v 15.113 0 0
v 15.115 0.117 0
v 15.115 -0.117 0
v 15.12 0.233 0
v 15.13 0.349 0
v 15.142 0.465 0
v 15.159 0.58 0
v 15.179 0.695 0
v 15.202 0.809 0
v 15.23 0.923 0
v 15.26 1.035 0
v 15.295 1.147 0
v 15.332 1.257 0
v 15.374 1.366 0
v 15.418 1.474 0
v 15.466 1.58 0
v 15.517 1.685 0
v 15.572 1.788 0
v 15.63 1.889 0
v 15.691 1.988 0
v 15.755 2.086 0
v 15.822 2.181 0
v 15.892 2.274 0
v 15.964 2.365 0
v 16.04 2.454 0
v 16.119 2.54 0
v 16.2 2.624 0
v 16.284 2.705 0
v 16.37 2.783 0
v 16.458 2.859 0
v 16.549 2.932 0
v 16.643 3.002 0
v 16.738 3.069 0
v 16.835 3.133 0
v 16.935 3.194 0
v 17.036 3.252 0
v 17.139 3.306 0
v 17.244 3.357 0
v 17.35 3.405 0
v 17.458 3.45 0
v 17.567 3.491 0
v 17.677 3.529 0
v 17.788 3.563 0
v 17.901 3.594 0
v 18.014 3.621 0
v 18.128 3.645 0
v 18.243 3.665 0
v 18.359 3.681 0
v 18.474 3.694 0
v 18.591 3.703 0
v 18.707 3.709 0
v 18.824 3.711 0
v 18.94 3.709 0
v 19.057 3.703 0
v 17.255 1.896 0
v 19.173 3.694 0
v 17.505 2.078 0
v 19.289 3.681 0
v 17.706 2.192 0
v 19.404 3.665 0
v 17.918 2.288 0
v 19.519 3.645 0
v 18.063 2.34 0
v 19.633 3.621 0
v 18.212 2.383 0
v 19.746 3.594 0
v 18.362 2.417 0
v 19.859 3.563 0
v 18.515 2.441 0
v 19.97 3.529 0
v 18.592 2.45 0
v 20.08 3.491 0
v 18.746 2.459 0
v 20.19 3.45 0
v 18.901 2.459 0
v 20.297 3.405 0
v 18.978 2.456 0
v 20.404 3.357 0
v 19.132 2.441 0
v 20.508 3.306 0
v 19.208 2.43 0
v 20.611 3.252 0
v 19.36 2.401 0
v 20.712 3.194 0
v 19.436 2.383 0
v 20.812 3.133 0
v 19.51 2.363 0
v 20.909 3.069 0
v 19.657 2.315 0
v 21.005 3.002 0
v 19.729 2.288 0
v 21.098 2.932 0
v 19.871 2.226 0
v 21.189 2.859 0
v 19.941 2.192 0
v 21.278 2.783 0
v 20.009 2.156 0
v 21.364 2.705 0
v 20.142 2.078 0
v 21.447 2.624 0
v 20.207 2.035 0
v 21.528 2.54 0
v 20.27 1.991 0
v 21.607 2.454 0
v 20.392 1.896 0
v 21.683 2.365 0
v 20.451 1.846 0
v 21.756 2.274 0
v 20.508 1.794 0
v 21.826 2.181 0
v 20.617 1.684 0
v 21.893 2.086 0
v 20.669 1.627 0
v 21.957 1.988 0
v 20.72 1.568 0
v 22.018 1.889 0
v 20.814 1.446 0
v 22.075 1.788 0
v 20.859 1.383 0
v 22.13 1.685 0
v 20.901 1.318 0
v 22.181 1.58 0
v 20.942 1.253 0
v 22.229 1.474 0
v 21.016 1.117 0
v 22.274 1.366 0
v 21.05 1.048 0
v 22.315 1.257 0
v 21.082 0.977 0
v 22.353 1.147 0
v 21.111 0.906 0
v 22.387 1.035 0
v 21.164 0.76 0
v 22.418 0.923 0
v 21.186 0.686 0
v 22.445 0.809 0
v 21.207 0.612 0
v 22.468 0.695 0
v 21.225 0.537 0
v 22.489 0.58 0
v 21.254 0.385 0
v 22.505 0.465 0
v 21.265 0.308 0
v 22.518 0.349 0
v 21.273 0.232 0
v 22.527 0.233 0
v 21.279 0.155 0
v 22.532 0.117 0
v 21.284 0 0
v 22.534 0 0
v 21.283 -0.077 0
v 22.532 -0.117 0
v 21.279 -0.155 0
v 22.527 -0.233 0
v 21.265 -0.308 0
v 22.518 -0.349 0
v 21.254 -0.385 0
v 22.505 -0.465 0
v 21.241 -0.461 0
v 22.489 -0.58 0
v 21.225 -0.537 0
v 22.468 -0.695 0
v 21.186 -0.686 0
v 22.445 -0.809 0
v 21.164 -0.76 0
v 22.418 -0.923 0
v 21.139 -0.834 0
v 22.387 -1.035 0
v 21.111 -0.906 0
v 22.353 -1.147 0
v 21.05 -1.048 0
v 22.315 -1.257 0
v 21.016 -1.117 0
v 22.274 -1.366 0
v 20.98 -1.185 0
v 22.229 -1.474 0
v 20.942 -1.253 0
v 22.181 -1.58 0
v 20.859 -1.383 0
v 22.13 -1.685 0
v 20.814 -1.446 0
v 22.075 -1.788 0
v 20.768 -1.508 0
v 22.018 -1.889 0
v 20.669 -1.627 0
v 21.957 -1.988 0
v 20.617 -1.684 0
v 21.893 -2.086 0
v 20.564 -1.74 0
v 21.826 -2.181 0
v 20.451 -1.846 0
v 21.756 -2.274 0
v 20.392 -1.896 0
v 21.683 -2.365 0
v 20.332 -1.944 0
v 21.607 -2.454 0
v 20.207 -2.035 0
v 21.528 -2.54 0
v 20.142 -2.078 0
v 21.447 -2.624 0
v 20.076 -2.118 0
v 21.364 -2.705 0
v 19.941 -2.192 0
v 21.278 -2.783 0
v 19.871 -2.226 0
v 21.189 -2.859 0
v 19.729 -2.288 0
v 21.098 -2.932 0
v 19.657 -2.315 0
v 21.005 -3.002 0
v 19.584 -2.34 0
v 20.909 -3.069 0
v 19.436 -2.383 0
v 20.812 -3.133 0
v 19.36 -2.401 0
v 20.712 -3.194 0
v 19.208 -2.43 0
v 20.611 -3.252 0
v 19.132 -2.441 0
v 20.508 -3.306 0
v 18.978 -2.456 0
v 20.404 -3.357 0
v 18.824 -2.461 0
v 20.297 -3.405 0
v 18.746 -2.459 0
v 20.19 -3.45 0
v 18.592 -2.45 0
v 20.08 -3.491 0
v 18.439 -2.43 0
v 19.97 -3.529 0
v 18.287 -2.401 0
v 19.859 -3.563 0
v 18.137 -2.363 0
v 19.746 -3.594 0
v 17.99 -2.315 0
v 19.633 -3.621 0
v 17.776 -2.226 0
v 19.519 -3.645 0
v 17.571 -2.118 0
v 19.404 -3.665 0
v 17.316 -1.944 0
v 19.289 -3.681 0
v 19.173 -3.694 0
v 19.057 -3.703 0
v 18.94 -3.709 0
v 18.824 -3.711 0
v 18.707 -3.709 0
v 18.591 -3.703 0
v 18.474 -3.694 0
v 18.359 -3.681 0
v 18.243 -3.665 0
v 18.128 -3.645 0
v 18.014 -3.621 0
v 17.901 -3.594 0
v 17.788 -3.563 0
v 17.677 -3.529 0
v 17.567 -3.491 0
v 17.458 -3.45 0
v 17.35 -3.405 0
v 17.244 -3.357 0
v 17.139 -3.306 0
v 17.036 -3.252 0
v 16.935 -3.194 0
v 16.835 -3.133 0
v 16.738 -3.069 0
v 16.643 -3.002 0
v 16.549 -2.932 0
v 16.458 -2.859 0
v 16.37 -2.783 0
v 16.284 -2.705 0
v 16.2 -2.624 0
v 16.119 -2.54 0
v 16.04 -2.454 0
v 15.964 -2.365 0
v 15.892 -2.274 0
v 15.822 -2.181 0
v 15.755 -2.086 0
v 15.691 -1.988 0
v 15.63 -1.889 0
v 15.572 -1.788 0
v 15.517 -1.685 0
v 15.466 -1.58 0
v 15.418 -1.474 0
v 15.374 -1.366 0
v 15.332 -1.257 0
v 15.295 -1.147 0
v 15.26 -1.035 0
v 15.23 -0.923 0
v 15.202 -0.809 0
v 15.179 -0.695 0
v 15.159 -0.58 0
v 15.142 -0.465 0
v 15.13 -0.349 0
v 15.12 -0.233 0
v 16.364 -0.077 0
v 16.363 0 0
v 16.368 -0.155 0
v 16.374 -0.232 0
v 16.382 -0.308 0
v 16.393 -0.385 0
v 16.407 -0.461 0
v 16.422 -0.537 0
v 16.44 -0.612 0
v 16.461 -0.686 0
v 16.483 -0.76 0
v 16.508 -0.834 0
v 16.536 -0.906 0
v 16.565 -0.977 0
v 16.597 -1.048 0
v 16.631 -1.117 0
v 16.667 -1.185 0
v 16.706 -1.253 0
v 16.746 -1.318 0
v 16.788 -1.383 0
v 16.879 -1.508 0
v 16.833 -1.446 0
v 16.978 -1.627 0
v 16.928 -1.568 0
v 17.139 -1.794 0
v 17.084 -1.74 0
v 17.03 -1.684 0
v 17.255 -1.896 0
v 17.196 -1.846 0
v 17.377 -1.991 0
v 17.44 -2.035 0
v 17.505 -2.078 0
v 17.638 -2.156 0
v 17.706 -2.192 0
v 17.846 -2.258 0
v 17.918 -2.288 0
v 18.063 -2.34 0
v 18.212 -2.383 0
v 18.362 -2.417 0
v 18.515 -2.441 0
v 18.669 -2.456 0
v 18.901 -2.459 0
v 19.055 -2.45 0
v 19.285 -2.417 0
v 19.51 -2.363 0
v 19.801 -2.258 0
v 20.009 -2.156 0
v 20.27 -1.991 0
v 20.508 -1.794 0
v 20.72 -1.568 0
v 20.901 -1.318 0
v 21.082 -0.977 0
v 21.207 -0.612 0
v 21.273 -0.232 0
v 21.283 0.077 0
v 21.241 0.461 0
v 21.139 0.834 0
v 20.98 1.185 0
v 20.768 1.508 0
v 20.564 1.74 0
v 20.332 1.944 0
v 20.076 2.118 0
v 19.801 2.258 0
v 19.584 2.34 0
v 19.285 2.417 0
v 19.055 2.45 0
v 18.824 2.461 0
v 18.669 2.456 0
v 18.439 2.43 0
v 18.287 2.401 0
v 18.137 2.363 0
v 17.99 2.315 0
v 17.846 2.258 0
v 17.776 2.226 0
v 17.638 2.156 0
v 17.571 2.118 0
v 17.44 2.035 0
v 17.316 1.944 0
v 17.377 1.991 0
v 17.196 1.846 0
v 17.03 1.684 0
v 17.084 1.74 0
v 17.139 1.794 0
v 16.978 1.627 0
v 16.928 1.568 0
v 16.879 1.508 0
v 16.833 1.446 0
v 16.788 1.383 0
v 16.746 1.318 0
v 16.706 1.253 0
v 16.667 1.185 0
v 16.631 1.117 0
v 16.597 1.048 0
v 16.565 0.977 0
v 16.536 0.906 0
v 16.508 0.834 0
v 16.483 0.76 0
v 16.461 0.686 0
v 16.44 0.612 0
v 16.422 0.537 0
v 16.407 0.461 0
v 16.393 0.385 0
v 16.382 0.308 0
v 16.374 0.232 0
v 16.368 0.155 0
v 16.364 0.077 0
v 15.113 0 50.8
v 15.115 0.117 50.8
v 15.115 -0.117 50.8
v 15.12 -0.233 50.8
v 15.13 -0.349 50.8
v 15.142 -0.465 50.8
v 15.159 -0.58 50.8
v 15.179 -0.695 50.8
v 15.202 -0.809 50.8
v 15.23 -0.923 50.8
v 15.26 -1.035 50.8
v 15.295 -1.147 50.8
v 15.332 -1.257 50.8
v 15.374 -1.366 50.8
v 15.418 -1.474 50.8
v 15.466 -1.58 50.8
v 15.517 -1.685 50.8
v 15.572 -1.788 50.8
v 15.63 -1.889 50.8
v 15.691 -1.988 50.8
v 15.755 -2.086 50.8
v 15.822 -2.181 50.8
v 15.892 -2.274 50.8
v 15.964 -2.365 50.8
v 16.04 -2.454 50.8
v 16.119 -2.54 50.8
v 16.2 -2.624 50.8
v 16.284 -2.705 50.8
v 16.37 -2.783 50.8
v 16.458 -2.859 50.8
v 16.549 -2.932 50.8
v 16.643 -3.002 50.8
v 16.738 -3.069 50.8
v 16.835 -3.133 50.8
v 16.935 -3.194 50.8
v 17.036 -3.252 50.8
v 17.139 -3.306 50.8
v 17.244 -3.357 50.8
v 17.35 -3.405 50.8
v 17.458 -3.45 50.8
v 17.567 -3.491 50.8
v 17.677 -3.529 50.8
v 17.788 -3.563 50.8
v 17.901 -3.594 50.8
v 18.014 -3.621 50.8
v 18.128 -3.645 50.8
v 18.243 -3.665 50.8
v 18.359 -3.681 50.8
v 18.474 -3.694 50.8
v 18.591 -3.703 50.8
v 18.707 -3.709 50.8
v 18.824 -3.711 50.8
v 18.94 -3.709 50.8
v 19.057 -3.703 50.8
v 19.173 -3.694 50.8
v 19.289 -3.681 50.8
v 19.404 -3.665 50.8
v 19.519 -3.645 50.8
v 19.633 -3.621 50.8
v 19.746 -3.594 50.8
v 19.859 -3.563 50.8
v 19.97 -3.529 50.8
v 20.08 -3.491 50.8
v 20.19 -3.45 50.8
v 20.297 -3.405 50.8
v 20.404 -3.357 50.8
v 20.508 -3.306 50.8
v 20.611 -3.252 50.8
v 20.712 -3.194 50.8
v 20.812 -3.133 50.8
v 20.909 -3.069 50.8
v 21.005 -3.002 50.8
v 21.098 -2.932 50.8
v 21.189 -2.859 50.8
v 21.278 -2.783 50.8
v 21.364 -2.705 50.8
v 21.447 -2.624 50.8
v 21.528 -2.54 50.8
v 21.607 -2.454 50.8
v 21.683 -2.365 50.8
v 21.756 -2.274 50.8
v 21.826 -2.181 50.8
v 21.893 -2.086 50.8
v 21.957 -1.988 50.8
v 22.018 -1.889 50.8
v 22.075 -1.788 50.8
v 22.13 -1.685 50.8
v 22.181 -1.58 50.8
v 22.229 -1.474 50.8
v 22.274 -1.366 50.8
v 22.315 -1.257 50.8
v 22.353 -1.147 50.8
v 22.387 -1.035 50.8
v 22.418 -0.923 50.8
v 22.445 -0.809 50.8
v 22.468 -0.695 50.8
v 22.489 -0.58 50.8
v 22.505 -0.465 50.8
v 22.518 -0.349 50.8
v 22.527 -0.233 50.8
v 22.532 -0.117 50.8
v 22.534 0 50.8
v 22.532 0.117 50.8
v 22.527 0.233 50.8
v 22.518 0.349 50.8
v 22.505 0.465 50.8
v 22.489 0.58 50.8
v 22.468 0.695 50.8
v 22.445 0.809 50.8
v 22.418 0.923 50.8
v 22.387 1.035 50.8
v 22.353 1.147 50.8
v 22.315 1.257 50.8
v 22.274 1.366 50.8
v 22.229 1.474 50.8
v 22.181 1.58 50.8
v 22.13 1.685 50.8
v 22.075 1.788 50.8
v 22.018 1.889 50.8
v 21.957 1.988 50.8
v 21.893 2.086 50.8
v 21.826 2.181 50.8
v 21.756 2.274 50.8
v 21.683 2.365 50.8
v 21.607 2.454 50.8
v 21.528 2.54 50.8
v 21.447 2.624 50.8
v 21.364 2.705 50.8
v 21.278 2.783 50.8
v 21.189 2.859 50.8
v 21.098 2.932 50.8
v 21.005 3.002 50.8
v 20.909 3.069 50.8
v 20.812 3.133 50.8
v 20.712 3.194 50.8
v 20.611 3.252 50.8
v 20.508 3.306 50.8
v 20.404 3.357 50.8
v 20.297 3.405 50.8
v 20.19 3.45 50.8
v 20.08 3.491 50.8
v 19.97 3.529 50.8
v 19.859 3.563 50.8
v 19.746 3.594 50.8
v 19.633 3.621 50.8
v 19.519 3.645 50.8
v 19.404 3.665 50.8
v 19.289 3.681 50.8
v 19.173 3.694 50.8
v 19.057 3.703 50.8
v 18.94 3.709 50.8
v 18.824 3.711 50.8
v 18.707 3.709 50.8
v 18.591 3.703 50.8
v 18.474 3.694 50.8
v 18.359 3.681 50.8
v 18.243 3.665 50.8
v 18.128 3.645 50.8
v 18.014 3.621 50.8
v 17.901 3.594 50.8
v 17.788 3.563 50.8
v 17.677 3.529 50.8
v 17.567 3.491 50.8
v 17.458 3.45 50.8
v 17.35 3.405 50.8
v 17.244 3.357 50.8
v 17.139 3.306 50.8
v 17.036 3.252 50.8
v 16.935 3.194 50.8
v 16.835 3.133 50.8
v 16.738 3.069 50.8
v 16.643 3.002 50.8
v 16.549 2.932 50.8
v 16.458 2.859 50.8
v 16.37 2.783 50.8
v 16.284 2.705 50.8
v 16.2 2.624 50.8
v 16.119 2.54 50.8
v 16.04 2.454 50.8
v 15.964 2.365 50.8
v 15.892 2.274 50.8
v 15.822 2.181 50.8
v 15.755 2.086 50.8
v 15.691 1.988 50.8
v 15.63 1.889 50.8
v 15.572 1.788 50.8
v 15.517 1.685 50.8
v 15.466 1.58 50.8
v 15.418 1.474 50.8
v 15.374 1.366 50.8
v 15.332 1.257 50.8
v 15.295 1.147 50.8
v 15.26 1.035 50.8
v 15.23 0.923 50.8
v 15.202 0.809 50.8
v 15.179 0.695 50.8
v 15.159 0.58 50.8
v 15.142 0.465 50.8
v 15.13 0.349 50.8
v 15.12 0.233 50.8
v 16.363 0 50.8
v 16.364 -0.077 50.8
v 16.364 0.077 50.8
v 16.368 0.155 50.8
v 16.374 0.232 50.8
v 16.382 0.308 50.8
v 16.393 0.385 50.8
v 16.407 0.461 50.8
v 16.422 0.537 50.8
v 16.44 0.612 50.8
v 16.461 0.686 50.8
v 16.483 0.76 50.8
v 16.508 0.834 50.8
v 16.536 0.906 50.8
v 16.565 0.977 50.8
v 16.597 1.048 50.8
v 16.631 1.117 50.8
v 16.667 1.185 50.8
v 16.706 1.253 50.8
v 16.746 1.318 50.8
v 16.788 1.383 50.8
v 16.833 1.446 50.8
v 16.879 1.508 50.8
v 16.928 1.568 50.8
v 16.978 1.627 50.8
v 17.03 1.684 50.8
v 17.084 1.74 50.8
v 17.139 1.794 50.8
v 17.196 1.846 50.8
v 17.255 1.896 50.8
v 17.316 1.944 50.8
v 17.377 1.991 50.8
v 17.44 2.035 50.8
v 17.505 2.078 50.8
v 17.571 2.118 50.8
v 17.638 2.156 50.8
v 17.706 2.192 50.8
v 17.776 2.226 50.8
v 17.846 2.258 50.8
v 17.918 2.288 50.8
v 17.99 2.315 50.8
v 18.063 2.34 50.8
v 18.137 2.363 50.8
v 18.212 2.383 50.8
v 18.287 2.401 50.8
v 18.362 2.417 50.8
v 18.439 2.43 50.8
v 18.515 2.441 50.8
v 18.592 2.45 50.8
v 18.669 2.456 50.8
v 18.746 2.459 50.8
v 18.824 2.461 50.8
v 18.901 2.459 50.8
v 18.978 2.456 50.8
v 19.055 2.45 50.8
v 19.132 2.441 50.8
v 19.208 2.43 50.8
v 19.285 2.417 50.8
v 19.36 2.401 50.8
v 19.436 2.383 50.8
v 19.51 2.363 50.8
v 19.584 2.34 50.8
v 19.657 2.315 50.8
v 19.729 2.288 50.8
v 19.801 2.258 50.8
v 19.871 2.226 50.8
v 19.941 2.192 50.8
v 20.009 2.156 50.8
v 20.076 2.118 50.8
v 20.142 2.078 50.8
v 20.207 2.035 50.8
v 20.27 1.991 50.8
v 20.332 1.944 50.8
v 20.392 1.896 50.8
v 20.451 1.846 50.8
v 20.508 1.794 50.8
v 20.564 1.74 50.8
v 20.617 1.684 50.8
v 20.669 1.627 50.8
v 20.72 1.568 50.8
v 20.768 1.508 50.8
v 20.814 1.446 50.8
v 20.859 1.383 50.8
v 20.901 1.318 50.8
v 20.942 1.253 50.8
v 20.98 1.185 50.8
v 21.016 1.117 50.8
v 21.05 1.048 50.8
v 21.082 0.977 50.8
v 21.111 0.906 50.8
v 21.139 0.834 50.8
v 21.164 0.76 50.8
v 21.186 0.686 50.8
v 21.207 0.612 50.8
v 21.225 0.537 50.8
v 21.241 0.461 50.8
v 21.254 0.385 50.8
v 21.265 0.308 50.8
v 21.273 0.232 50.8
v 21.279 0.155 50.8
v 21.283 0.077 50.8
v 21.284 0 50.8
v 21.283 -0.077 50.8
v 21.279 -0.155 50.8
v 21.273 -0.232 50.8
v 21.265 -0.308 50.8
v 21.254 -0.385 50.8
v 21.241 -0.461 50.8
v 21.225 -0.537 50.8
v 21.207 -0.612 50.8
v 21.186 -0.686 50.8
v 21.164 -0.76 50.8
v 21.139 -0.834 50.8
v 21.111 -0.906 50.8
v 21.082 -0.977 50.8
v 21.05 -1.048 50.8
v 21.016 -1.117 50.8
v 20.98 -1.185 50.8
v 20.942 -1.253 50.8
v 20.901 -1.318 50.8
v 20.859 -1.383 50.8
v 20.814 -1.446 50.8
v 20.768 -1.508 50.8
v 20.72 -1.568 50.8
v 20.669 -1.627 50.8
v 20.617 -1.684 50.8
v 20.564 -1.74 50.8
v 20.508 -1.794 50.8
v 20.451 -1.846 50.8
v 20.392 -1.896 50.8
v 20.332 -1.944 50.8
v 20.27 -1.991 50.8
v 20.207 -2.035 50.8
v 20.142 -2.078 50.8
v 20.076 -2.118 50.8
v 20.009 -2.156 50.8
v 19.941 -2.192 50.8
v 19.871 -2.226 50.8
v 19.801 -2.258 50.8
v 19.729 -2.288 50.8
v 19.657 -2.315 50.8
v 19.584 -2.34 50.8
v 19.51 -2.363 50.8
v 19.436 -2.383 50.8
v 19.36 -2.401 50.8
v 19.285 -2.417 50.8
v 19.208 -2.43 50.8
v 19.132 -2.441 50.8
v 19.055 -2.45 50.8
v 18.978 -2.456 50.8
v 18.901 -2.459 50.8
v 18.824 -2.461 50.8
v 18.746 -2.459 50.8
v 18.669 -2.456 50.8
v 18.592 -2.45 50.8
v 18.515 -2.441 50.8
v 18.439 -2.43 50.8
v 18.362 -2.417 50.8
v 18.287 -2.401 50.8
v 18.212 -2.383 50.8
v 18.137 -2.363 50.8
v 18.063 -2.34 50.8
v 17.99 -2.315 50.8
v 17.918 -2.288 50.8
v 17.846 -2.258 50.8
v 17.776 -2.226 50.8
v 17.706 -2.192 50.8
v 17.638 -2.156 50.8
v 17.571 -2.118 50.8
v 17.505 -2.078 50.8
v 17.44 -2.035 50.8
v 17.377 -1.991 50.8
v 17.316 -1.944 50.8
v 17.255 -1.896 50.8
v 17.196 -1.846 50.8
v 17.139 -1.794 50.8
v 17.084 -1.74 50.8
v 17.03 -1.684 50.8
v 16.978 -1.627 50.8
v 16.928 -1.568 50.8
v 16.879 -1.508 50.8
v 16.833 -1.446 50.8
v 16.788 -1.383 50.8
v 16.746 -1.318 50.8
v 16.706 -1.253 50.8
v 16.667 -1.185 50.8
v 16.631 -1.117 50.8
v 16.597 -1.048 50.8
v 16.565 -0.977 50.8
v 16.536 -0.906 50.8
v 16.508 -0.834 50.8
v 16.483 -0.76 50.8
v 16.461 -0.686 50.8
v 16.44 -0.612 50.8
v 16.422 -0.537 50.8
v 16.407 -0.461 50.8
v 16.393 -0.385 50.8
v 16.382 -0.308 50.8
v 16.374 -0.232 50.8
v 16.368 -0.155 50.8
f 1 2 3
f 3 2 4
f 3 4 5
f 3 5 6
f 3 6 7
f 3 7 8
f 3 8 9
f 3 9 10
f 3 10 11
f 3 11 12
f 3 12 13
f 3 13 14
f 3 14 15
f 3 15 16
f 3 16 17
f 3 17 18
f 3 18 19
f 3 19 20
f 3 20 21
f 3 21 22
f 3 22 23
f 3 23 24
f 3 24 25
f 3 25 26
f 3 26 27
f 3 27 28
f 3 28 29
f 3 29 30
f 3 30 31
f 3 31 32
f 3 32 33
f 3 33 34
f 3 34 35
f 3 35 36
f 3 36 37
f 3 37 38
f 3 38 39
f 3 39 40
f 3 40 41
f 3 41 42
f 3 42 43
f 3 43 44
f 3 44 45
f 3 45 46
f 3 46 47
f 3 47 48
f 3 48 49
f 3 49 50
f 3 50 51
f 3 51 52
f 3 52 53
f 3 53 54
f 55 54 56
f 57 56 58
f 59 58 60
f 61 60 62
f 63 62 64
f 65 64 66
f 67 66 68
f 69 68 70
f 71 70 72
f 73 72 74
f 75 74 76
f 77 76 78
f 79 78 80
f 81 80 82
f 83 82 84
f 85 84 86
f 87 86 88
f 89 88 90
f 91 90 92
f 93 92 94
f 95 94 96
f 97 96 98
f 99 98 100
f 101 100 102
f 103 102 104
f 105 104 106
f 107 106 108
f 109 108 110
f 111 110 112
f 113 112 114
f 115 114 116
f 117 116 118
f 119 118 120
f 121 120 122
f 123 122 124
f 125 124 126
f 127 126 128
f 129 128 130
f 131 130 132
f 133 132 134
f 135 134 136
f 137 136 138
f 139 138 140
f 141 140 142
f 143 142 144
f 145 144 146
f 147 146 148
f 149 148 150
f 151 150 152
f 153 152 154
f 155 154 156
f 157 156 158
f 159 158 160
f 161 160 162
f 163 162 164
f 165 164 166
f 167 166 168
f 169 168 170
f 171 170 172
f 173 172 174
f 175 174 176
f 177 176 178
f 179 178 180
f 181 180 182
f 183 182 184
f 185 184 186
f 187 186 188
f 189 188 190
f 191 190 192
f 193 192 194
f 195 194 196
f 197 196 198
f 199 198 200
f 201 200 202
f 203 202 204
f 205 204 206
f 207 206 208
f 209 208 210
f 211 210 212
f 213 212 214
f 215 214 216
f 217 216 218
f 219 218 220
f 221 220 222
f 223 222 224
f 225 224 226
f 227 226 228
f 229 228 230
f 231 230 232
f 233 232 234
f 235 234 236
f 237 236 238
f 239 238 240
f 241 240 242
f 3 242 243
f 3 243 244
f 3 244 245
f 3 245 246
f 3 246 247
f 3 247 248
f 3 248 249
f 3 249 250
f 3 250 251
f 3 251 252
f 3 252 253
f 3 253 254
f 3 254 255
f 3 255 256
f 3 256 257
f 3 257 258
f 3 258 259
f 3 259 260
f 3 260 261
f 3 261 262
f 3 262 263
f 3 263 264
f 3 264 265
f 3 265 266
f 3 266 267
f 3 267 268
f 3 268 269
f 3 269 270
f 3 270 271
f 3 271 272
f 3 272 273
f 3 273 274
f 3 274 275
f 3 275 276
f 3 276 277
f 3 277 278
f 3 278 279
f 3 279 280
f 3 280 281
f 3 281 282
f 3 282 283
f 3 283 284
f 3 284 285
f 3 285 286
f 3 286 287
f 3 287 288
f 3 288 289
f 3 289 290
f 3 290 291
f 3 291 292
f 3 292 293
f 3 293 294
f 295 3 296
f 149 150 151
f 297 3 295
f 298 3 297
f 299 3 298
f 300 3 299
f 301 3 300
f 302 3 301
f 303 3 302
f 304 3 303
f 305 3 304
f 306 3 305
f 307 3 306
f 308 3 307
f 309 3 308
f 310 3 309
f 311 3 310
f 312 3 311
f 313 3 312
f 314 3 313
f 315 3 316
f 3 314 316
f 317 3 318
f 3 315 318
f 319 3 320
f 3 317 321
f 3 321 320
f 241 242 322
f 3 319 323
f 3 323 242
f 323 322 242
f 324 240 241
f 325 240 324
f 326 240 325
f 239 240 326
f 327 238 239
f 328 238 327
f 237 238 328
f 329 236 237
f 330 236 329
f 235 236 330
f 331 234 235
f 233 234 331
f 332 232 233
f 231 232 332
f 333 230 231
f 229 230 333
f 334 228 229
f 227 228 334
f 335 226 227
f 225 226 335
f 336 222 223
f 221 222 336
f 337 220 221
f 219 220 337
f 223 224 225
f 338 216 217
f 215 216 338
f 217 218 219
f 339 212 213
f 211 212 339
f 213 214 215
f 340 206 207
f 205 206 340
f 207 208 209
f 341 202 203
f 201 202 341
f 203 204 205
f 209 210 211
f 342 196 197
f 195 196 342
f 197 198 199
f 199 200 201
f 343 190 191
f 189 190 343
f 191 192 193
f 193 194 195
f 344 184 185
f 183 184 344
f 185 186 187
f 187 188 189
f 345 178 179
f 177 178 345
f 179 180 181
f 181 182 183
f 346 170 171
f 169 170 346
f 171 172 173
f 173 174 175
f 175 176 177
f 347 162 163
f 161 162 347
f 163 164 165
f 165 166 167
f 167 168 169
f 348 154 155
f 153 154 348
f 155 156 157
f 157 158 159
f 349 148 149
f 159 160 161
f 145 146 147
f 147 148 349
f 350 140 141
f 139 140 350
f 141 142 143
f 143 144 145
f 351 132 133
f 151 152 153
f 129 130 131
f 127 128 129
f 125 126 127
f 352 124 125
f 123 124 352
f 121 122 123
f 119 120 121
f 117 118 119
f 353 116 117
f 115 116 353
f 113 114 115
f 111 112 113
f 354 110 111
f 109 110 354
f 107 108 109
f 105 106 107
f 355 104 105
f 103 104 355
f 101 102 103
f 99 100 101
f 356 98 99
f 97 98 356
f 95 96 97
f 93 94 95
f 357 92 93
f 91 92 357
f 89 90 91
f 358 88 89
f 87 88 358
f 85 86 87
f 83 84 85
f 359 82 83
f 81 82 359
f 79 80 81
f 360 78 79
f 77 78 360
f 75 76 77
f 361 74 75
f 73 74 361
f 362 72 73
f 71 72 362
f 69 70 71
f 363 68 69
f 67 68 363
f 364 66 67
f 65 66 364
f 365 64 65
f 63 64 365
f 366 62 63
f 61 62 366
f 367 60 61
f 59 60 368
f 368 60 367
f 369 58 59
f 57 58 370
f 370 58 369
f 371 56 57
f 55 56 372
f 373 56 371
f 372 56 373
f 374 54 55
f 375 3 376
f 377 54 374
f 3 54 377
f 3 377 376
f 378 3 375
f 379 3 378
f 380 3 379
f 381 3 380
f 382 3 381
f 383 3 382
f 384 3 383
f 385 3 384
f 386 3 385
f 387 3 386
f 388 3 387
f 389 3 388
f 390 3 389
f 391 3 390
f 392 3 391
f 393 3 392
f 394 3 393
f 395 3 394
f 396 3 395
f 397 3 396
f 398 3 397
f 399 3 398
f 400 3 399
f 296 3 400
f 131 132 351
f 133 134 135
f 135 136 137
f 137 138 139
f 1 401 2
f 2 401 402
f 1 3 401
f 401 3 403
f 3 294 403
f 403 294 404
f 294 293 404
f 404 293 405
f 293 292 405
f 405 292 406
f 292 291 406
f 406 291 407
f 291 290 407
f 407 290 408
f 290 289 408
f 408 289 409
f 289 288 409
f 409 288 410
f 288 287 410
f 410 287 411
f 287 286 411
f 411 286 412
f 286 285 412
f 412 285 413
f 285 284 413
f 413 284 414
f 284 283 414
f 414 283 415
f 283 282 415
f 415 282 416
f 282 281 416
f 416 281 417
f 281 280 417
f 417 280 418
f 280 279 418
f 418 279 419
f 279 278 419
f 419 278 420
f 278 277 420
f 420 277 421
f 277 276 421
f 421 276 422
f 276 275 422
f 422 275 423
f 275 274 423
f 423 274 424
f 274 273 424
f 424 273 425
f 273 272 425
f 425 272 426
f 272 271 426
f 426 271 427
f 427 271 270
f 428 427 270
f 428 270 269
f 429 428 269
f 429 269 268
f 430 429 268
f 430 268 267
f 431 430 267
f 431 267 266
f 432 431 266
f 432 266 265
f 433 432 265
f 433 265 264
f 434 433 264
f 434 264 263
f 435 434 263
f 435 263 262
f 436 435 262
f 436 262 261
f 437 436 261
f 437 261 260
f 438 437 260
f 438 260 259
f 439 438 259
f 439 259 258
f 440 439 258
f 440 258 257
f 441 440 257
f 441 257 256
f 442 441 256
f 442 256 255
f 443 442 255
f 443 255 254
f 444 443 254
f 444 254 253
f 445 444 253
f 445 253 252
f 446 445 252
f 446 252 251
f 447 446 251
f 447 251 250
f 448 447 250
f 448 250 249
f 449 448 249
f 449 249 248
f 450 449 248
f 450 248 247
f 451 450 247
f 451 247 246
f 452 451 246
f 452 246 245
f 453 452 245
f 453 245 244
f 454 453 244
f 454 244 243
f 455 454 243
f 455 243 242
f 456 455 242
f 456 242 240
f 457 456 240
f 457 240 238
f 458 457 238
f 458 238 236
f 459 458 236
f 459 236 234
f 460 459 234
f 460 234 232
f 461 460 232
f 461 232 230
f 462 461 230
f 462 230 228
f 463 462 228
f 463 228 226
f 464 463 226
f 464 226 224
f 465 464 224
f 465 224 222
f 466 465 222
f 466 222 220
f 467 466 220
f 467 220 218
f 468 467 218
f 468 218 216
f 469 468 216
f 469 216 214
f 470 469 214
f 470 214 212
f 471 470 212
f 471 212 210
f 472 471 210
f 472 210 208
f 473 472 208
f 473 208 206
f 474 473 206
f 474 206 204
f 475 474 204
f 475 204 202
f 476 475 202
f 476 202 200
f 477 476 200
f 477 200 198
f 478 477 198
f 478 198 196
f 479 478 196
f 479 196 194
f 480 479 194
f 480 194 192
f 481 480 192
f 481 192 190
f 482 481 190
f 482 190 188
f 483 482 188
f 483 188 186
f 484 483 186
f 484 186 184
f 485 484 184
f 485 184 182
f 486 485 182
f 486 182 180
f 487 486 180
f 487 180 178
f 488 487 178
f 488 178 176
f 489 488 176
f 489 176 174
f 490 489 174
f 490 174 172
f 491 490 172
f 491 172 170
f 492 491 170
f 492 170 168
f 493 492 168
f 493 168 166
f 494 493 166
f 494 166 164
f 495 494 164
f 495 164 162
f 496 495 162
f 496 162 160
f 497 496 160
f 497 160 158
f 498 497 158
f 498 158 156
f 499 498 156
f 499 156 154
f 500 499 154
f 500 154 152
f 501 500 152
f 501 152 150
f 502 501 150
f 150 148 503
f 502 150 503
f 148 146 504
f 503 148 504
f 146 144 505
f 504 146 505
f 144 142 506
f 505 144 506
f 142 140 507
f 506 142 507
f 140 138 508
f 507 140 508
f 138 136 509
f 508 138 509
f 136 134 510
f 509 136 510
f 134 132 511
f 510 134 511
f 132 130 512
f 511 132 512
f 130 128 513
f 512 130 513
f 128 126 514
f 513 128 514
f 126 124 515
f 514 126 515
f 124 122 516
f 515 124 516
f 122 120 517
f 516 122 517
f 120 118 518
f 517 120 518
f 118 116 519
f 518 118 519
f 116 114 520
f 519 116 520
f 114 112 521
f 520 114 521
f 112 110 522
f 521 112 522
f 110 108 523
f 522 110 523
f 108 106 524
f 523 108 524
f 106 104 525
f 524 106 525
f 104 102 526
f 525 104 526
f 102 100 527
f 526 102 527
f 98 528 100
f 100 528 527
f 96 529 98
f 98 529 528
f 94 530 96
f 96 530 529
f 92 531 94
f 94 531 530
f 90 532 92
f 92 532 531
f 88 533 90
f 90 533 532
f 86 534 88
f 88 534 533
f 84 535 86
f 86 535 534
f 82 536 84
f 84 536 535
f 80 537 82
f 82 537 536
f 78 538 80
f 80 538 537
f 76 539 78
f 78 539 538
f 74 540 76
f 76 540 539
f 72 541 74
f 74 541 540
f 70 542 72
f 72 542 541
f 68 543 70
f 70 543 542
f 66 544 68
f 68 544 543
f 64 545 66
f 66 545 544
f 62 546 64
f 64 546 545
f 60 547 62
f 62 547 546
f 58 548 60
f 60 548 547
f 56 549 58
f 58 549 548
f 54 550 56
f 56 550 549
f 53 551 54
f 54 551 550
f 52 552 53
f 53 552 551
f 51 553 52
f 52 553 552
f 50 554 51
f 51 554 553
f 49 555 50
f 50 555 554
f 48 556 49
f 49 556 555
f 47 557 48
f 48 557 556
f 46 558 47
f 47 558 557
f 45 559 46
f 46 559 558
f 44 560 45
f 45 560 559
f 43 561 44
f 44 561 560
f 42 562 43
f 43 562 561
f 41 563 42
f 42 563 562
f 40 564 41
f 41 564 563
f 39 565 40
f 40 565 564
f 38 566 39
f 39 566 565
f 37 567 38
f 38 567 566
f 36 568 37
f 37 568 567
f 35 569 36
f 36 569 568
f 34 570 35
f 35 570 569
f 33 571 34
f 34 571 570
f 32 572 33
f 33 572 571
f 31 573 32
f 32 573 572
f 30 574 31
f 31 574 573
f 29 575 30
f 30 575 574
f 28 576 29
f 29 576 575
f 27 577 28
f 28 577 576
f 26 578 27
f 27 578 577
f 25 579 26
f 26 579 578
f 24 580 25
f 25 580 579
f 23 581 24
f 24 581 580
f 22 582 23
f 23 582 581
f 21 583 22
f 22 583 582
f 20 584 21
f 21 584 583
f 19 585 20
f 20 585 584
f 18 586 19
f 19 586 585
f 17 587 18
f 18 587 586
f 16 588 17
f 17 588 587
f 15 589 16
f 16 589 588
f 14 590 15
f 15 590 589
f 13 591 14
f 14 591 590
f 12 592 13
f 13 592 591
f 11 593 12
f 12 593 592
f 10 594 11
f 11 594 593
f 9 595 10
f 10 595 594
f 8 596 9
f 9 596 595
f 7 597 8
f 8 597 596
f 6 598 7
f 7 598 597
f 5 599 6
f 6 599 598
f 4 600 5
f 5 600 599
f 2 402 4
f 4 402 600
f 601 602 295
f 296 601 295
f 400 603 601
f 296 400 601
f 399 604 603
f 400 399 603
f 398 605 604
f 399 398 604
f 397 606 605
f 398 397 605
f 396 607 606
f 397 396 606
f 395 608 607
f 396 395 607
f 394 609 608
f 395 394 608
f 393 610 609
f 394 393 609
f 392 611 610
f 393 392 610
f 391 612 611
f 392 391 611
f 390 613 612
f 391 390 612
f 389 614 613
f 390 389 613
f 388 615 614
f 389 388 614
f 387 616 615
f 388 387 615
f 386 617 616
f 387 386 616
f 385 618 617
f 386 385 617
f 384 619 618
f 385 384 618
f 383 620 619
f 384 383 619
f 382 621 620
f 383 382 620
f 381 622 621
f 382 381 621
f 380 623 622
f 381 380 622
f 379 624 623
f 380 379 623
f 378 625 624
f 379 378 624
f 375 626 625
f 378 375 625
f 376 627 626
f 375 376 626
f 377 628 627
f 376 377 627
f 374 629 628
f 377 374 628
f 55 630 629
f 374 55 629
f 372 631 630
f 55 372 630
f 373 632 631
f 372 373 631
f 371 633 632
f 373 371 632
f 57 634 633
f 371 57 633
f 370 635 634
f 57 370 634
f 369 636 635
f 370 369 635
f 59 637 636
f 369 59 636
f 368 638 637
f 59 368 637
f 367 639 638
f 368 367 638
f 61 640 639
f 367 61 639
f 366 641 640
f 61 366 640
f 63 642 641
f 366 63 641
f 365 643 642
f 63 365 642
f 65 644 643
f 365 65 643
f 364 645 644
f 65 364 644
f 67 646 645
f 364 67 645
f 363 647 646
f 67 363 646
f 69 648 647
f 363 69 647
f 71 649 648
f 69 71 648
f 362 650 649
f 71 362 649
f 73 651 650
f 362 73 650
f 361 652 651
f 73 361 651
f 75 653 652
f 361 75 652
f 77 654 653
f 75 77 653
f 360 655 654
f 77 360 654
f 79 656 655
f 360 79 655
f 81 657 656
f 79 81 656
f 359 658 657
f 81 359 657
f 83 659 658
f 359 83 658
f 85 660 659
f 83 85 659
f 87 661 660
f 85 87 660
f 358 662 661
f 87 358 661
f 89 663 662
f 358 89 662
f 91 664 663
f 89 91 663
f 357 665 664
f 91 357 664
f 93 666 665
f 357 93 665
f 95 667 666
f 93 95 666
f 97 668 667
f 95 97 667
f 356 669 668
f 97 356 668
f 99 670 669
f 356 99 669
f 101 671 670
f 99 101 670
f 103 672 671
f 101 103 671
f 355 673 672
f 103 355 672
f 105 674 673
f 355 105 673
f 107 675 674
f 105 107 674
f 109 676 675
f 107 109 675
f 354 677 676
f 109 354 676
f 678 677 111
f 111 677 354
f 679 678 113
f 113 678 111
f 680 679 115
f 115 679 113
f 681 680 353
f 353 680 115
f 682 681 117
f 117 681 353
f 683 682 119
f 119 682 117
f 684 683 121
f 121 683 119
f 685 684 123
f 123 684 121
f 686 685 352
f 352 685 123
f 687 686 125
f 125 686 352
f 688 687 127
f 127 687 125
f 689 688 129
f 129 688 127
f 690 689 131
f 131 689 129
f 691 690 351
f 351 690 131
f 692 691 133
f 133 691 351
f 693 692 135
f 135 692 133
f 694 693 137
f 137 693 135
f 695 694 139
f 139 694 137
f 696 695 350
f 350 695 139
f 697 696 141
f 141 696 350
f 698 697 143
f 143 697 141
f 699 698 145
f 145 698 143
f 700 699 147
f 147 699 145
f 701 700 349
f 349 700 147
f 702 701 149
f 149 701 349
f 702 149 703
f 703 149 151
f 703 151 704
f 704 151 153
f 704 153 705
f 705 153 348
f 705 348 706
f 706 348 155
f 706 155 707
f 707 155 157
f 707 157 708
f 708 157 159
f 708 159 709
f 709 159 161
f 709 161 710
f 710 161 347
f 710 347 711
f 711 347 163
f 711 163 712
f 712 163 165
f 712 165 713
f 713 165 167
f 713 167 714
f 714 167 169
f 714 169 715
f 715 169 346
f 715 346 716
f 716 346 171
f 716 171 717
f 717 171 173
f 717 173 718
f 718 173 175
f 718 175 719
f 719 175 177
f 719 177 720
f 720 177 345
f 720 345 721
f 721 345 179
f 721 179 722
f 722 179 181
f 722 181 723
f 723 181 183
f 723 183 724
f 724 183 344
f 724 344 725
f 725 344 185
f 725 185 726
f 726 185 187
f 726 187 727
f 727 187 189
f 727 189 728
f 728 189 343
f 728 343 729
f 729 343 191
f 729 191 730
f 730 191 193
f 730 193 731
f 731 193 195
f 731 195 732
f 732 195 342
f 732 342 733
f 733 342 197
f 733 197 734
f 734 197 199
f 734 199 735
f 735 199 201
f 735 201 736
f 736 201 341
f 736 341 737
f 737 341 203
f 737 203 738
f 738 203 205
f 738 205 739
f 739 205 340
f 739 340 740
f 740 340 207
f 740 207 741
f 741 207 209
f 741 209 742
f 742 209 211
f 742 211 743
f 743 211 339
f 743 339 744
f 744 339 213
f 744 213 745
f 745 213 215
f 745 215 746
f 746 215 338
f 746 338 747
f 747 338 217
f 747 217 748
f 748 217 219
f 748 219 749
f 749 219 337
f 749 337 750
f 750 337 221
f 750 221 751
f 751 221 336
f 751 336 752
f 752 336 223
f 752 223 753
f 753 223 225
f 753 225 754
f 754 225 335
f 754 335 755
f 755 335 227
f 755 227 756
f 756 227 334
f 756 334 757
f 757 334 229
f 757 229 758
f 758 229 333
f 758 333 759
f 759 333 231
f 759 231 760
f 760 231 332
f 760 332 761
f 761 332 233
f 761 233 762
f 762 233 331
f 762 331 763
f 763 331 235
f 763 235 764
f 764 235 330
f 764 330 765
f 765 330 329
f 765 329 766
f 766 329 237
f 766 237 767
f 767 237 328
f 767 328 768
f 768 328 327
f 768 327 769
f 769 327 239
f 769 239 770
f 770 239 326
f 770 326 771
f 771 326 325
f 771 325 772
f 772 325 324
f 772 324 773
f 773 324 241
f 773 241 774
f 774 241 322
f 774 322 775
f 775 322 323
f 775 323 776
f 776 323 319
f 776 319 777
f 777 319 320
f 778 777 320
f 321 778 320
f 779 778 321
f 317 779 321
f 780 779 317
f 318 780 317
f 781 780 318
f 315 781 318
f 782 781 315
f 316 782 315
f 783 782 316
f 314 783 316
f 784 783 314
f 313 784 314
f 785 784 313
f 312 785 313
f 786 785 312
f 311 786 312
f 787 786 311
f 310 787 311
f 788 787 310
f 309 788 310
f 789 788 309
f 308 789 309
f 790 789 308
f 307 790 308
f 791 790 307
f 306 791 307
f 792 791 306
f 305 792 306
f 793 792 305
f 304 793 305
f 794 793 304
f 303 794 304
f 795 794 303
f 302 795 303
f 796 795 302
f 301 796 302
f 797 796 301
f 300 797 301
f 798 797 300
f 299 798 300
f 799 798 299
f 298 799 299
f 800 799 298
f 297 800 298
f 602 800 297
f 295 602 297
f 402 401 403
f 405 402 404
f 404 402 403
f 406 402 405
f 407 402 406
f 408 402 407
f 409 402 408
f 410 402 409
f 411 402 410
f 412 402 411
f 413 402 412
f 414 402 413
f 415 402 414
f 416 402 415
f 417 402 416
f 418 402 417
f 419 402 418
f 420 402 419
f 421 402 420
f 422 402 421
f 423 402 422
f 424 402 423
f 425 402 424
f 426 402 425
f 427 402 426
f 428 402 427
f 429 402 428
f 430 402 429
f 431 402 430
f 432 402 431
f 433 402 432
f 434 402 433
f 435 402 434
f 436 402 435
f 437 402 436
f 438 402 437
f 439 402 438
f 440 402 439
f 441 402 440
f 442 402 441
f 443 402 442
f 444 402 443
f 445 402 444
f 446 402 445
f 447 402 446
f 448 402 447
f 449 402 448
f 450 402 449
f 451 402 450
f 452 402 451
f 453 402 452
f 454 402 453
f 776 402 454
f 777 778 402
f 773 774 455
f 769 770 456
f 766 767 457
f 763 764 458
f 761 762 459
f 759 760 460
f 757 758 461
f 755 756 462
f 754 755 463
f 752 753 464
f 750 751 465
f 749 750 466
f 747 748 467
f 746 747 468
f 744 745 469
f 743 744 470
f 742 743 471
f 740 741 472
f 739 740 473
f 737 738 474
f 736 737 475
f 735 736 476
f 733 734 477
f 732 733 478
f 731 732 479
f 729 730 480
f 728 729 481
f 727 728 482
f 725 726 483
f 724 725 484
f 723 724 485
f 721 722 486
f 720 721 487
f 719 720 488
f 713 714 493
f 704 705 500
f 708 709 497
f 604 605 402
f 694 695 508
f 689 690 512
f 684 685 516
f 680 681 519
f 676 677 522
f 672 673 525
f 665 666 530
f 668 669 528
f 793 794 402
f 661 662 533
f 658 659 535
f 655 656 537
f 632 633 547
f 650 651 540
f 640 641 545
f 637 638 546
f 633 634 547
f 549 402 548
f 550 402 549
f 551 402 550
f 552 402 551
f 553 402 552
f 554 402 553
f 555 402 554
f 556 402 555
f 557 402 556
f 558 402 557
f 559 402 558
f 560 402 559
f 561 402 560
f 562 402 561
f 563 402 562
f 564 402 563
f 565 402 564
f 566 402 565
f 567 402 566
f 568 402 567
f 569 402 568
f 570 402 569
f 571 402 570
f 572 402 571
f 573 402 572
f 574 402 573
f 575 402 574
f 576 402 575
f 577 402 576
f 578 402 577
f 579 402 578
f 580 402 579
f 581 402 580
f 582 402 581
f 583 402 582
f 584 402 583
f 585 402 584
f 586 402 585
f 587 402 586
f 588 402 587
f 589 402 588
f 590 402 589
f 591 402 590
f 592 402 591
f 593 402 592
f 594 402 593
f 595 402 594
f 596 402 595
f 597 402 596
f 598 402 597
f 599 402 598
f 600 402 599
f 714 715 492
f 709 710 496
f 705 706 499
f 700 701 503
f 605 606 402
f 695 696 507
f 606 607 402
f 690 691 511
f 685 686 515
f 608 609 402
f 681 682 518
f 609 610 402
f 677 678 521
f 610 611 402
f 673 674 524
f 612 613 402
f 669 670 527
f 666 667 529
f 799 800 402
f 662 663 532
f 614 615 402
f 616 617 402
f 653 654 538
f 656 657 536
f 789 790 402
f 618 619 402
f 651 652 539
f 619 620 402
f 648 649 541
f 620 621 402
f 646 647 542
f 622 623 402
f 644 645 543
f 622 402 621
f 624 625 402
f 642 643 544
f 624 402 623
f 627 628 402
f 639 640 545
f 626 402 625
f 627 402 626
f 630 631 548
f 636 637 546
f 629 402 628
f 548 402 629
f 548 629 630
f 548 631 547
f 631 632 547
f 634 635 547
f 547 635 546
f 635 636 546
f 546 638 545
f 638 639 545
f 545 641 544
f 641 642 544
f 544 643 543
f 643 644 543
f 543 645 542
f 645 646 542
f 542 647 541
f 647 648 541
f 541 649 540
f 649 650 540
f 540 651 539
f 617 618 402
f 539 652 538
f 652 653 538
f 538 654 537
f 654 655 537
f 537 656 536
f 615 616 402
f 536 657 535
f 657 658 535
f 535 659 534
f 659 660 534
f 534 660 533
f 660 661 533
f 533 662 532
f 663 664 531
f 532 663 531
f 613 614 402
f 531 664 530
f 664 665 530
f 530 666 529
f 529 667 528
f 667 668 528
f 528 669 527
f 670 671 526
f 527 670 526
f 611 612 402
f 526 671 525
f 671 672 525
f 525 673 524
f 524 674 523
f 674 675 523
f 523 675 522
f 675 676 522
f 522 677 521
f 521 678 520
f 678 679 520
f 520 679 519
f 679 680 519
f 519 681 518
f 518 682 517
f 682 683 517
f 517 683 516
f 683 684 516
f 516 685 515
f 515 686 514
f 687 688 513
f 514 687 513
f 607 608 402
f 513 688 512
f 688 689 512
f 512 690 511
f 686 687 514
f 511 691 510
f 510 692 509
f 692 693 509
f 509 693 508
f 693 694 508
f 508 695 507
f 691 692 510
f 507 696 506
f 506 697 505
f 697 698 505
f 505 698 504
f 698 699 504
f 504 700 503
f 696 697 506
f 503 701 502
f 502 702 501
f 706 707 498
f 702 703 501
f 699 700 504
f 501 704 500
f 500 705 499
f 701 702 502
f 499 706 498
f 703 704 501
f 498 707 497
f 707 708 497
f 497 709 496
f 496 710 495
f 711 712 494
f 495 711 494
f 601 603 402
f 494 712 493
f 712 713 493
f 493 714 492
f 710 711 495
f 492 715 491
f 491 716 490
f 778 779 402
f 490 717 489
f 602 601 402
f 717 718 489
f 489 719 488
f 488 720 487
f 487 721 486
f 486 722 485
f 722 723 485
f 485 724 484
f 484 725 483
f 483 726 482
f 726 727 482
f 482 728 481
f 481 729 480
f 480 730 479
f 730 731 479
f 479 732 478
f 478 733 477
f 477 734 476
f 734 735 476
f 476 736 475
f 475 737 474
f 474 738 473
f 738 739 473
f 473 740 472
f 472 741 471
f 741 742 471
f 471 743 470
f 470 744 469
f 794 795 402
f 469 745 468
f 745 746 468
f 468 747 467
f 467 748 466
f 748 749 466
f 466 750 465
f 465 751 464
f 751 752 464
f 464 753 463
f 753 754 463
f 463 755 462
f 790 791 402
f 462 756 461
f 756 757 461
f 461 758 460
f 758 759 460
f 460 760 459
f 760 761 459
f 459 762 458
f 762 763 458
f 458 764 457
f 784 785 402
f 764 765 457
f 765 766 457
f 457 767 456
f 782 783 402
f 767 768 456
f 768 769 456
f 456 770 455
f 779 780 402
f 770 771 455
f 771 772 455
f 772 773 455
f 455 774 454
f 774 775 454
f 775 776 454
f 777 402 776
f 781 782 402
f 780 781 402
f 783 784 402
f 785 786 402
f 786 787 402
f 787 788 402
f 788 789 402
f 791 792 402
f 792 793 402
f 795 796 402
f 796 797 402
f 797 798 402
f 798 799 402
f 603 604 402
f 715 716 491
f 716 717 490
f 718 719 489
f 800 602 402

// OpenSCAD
translate(v = [18.8236155102, 0, 0]) {
	difference() {
		cylinder($fn = 200, h = 50.7999725680, r = 3.7106236713);
		cylinder($fn = 200, h = 50.7999725680, r = 2.4606236713);
	}
}
